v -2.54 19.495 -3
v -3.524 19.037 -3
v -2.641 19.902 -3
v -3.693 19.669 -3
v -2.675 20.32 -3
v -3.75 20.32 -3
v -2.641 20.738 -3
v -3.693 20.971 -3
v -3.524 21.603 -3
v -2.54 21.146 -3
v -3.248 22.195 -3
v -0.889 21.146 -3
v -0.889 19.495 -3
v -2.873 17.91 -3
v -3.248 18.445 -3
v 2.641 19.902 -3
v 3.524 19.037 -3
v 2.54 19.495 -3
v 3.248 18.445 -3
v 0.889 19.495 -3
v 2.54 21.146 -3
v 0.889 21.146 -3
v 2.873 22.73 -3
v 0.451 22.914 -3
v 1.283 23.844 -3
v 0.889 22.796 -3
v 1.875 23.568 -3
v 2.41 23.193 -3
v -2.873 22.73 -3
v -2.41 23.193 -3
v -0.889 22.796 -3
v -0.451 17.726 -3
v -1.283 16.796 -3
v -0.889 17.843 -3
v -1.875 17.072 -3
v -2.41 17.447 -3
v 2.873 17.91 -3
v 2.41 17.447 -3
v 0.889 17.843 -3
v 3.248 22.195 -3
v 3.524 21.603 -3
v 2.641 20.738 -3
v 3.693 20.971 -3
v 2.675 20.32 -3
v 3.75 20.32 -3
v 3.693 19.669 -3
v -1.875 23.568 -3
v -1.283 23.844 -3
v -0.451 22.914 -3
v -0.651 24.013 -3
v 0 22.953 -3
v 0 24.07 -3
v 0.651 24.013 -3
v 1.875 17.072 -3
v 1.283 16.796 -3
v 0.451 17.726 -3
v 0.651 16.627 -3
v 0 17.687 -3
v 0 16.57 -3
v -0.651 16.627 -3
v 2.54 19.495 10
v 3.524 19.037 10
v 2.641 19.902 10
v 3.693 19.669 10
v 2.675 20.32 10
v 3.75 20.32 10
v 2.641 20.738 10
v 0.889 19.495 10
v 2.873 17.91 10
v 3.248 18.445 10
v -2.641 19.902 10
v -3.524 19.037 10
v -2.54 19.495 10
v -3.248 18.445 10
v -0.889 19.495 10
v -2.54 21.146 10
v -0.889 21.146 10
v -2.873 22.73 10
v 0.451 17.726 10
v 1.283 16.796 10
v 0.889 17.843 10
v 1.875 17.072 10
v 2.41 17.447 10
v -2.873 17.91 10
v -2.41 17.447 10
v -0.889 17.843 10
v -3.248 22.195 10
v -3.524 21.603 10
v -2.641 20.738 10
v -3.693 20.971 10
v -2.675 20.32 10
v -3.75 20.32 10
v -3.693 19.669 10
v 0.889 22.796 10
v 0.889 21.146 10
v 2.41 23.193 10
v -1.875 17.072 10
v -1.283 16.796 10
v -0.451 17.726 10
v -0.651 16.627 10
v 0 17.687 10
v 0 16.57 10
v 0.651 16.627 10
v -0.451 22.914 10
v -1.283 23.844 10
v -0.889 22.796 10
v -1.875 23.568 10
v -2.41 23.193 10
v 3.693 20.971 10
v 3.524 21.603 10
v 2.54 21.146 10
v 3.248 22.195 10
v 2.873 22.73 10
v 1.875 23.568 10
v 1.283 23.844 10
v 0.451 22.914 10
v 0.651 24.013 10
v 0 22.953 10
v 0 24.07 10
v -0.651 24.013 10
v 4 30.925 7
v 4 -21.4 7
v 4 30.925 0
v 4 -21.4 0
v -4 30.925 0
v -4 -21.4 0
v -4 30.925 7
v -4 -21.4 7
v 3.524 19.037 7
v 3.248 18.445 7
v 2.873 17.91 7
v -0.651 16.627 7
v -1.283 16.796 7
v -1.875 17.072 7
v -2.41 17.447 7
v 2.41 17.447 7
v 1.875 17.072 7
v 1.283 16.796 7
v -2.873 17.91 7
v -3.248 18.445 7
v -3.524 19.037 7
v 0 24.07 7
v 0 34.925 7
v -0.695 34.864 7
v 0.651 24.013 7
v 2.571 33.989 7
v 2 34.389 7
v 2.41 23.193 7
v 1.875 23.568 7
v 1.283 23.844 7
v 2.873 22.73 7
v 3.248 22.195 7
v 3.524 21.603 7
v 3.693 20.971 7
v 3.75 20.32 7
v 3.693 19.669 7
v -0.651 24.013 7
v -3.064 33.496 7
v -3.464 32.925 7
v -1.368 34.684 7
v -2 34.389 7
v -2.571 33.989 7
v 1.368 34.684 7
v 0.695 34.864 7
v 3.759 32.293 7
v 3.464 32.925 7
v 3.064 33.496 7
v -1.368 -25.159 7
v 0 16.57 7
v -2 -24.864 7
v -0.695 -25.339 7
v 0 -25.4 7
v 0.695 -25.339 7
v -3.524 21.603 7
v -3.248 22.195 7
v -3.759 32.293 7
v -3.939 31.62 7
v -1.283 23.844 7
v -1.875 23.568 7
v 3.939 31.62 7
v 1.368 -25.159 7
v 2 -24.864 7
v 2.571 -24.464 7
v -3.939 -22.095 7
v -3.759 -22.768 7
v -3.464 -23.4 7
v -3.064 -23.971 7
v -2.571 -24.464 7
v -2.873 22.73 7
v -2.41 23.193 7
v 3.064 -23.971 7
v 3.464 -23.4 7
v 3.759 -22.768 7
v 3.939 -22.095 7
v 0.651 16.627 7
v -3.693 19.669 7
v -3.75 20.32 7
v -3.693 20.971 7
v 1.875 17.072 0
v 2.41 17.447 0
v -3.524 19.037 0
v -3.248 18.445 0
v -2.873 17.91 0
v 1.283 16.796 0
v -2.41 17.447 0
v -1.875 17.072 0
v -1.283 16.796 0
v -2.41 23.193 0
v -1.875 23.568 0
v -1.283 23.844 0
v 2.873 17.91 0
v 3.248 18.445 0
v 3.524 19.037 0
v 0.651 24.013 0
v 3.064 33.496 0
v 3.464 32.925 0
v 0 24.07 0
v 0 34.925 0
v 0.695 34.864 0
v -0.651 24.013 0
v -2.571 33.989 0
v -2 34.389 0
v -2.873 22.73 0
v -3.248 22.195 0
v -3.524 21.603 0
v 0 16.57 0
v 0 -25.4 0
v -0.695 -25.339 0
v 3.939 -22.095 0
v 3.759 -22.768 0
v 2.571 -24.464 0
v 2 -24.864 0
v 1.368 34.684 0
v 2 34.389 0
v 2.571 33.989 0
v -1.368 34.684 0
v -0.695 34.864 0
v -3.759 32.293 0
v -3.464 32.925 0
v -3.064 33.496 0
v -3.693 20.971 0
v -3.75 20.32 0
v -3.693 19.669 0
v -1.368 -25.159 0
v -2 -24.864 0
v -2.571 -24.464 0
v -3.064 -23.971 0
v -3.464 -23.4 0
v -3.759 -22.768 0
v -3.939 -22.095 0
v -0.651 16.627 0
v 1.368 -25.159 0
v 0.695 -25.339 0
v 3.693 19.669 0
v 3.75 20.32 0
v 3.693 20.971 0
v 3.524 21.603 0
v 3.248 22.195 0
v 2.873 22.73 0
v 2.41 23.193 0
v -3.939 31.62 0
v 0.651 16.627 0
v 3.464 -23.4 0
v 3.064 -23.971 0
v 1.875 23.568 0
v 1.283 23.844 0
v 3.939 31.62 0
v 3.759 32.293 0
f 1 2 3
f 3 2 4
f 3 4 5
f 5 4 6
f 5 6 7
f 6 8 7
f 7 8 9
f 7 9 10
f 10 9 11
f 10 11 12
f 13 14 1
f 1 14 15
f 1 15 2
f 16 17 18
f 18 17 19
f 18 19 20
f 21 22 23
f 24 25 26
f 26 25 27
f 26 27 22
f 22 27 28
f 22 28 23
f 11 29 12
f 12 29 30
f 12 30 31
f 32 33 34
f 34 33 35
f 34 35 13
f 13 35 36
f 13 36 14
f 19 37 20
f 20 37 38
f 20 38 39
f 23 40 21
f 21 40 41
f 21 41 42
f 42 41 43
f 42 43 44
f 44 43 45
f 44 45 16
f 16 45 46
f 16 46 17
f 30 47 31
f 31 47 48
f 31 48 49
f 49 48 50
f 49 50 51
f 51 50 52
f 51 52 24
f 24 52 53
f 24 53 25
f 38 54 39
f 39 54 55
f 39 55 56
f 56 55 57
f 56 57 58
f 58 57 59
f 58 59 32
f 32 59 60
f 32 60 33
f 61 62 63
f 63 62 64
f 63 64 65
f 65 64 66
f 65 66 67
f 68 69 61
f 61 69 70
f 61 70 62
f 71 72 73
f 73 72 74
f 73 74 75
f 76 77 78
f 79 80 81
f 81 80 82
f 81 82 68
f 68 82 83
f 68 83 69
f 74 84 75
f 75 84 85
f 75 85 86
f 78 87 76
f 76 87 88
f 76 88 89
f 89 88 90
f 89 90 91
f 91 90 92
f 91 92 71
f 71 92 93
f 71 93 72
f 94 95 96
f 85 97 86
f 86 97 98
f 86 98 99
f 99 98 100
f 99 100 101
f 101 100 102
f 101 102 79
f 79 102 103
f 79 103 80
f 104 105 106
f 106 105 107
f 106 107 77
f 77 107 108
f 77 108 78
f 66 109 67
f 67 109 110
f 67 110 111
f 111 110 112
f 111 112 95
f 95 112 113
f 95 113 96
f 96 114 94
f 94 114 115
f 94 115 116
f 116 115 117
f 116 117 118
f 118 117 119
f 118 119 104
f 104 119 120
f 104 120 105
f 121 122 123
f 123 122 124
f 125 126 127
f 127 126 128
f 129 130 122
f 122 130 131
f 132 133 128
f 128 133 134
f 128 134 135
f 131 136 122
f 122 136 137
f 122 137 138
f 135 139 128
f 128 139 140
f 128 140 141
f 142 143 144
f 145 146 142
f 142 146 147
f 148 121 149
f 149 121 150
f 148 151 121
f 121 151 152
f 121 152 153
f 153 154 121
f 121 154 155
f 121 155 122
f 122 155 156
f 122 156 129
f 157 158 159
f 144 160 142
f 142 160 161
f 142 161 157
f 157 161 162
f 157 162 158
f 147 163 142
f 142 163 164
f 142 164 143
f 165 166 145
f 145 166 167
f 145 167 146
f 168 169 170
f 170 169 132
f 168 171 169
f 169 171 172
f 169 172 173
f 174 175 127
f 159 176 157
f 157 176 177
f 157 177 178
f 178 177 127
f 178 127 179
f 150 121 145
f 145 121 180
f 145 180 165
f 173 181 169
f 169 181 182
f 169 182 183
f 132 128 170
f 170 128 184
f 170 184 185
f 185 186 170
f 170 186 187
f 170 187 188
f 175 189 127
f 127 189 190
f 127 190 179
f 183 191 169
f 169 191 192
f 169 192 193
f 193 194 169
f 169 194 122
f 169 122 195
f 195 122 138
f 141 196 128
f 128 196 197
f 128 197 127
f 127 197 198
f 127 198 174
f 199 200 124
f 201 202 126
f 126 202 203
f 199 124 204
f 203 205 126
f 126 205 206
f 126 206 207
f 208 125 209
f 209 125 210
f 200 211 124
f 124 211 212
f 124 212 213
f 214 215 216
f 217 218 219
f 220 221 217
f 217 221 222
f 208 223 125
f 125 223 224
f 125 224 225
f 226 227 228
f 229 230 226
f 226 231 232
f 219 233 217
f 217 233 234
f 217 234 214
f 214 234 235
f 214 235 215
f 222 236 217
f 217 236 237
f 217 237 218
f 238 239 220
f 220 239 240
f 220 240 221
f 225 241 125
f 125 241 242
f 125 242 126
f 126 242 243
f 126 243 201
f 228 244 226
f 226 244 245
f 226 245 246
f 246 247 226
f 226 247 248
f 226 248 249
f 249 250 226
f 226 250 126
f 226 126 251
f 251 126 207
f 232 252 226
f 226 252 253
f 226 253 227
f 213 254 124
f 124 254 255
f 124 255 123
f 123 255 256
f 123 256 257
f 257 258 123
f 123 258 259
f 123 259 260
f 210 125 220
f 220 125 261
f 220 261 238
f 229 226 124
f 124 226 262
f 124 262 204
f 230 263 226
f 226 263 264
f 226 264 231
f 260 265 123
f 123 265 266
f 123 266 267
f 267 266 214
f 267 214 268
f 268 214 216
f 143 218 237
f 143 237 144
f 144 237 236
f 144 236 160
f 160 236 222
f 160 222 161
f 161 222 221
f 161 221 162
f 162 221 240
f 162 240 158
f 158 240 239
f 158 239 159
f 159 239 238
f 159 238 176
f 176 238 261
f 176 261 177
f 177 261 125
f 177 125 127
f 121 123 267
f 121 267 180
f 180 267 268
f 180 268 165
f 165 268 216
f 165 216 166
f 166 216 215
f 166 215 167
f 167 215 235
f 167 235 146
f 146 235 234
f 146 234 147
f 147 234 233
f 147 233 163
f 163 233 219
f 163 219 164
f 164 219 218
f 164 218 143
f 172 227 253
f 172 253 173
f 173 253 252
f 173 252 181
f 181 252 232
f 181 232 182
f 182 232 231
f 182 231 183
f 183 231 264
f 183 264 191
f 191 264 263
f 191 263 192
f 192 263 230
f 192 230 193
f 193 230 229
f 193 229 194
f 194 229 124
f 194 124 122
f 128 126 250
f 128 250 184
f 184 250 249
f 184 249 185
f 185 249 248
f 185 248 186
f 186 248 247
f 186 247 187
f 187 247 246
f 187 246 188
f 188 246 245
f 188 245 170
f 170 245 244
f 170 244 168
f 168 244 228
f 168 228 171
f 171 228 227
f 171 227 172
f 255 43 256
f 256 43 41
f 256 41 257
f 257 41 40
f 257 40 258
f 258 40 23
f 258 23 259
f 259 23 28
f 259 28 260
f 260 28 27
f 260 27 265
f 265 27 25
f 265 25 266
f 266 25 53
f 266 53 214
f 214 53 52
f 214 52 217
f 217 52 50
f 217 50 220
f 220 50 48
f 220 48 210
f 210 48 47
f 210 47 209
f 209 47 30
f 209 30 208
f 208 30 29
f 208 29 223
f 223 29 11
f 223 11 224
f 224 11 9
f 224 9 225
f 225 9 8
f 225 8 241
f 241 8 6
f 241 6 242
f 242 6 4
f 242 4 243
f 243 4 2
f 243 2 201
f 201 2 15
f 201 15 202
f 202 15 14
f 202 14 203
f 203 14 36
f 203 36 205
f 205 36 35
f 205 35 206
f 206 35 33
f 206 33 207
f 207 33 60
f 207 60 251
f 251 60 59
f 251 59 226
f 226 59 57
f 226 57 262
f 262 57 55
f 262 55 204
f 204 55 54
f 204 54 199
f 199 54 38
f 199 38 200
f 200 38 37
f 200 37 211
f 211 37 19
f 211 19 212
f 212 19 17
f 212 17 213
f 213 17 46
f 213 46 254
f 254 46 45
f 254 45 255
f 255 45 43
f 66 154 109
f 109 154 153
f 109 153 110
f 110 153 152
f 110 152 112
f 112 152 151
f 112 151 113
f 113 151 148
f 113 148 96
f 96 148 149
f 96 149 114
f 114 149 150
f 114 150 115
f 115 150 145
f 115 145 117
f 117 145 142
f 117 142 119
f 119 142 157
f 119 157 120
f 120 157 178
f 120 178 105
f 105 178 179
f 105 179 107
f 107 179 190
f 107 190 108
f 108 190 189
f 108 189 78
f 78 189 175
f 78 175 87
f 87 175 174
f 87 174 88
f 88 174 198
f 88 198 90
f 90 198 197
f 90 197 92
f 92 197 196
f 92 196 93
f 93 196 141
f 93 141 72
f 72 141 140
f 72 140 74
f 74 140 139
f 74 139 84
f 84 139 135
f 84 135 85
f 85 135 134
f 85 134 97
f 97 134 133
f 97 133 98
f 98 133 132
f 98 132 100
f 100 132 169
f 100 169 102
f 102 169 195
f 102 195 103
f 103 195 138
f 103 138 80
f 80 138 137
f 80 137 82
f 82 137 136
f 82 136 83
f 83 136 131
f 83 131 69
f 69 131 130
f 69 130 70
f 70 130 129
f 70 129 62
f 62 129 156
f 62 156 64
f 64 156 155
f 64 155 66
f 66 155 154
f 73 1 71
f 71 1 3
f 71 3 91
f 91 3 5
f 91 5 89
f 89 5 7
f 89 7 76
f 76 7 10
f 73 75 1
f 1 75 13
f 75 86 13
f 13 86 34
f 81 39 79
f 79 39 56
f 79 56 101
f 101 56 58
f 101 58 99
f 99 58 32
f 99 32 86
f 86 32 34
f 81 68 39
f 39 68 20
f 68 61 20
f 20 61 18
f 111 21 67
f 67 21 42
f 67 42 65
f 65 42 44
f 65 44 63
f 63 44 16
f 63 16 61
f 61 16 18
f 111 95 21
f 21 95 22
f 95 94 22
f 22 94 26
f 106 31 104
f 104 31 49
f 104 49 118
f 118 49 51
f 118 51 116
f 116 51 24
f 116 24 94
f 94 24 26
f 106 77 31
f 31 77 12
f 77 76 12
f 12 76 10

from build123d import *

# Parameters (mm, degrees)
BOSS_EXTRUDE1_DEPTH      = 7
FILLET1_R                = 4
BOSS_EXTRUDE2_DEPTH      = 3
BOSS_EXTRUDE2_DEPTH_BACK = 9.99999997
SKETCH2_R                = 3.75
CUT_EXTRUDE1_DEPTH       = 38.480069693


with BuildPart() as part:
    # Sketch1 → Boss-Extrude1 (new body)
    with BuildSketch(Plane.XY):
        Polygon((4, 25.4), (4, 34.925), (-4, 34.925), (-4, 25.4), (-4, -25.4), (4, -25.4), align=None)
    extrude(amount=BOSS_EXTRUDE1_DEPTH)

    # Fillet1
    fillet1_edges = [part.edges().sort_by_distance(p)[0] for p in [
        (-4, -25.4, 3.5),
        (4, -25.4, 3.5),
        (4, 34.925, 3.5),
        (-4, 34.925, 3.5),
    ]]
    fillet(fillet1_edges, radius=FILLET1_R - 0.0001)  # a hair under: the kernel refuses the full size

    # Sketch2 → Boss-Extrude2 (add, two sides: drawn at the far end of the back side and taken through both)
    with BuildSketch(Plane.XY.offset(7).offset(-BOSS_EXTRUDE2_DEPTH_BACK)):
        with Locations((0, 20.32)):
            Circle(SKETCH2_R)
    extrude(amount=BOSS_EXTRUDE2_DEPTH + BOSS_EXTRUDE2_DEPTH_BACK)

    # Sketch3 → Cut-Extrude1 (cut, through all)
    with BuildSketch(Plane(origin=(0, 0, -2.99999997), x_dir=(-1, 0, 0), z_dir=(0, 0, -1))):
        with BuildLine():
            Line((-0.889, 21.1455), (-0.889, 22.7965))
            ThreePointArc((-0.889, 22.7965), (0, 22.953207345), (0.889, 22.7965))
            Line((0.889, 22.7965), (0.889, 21.1455))
            Line((0.889, 21.1455), (2.54, 21.1455))
            ThreePointArc((2.54, 21.1455), (2.674528493, 20.32), (2.54, 19.4945))
            Line((2.54, 19.4945), (0.889, 19.4945))
            Line((0.889, 19.4945), (0.889, 17.8435))
            ThreePointArc((0.889, 17.8435), (0, 17.686792655), (-0.889, 17.8435))
            Line((-0.889, 17.8435), (-0.889, 19.4945))
            Line((-0.889, 19.4945), (-2.54, 19.4945))
            ThreePointArc((-2.54, 19.4945), (-2.674528493, 20.32), (-2.54, 21.1455))
            Line((-2.54, 21.1455), (-0.889, 21.1455))
        make_face()
    extrude(amount=-CUT_EXTRUDE1_DEPTH, mode=Mode.SUBTRACT)


solid = part.part
